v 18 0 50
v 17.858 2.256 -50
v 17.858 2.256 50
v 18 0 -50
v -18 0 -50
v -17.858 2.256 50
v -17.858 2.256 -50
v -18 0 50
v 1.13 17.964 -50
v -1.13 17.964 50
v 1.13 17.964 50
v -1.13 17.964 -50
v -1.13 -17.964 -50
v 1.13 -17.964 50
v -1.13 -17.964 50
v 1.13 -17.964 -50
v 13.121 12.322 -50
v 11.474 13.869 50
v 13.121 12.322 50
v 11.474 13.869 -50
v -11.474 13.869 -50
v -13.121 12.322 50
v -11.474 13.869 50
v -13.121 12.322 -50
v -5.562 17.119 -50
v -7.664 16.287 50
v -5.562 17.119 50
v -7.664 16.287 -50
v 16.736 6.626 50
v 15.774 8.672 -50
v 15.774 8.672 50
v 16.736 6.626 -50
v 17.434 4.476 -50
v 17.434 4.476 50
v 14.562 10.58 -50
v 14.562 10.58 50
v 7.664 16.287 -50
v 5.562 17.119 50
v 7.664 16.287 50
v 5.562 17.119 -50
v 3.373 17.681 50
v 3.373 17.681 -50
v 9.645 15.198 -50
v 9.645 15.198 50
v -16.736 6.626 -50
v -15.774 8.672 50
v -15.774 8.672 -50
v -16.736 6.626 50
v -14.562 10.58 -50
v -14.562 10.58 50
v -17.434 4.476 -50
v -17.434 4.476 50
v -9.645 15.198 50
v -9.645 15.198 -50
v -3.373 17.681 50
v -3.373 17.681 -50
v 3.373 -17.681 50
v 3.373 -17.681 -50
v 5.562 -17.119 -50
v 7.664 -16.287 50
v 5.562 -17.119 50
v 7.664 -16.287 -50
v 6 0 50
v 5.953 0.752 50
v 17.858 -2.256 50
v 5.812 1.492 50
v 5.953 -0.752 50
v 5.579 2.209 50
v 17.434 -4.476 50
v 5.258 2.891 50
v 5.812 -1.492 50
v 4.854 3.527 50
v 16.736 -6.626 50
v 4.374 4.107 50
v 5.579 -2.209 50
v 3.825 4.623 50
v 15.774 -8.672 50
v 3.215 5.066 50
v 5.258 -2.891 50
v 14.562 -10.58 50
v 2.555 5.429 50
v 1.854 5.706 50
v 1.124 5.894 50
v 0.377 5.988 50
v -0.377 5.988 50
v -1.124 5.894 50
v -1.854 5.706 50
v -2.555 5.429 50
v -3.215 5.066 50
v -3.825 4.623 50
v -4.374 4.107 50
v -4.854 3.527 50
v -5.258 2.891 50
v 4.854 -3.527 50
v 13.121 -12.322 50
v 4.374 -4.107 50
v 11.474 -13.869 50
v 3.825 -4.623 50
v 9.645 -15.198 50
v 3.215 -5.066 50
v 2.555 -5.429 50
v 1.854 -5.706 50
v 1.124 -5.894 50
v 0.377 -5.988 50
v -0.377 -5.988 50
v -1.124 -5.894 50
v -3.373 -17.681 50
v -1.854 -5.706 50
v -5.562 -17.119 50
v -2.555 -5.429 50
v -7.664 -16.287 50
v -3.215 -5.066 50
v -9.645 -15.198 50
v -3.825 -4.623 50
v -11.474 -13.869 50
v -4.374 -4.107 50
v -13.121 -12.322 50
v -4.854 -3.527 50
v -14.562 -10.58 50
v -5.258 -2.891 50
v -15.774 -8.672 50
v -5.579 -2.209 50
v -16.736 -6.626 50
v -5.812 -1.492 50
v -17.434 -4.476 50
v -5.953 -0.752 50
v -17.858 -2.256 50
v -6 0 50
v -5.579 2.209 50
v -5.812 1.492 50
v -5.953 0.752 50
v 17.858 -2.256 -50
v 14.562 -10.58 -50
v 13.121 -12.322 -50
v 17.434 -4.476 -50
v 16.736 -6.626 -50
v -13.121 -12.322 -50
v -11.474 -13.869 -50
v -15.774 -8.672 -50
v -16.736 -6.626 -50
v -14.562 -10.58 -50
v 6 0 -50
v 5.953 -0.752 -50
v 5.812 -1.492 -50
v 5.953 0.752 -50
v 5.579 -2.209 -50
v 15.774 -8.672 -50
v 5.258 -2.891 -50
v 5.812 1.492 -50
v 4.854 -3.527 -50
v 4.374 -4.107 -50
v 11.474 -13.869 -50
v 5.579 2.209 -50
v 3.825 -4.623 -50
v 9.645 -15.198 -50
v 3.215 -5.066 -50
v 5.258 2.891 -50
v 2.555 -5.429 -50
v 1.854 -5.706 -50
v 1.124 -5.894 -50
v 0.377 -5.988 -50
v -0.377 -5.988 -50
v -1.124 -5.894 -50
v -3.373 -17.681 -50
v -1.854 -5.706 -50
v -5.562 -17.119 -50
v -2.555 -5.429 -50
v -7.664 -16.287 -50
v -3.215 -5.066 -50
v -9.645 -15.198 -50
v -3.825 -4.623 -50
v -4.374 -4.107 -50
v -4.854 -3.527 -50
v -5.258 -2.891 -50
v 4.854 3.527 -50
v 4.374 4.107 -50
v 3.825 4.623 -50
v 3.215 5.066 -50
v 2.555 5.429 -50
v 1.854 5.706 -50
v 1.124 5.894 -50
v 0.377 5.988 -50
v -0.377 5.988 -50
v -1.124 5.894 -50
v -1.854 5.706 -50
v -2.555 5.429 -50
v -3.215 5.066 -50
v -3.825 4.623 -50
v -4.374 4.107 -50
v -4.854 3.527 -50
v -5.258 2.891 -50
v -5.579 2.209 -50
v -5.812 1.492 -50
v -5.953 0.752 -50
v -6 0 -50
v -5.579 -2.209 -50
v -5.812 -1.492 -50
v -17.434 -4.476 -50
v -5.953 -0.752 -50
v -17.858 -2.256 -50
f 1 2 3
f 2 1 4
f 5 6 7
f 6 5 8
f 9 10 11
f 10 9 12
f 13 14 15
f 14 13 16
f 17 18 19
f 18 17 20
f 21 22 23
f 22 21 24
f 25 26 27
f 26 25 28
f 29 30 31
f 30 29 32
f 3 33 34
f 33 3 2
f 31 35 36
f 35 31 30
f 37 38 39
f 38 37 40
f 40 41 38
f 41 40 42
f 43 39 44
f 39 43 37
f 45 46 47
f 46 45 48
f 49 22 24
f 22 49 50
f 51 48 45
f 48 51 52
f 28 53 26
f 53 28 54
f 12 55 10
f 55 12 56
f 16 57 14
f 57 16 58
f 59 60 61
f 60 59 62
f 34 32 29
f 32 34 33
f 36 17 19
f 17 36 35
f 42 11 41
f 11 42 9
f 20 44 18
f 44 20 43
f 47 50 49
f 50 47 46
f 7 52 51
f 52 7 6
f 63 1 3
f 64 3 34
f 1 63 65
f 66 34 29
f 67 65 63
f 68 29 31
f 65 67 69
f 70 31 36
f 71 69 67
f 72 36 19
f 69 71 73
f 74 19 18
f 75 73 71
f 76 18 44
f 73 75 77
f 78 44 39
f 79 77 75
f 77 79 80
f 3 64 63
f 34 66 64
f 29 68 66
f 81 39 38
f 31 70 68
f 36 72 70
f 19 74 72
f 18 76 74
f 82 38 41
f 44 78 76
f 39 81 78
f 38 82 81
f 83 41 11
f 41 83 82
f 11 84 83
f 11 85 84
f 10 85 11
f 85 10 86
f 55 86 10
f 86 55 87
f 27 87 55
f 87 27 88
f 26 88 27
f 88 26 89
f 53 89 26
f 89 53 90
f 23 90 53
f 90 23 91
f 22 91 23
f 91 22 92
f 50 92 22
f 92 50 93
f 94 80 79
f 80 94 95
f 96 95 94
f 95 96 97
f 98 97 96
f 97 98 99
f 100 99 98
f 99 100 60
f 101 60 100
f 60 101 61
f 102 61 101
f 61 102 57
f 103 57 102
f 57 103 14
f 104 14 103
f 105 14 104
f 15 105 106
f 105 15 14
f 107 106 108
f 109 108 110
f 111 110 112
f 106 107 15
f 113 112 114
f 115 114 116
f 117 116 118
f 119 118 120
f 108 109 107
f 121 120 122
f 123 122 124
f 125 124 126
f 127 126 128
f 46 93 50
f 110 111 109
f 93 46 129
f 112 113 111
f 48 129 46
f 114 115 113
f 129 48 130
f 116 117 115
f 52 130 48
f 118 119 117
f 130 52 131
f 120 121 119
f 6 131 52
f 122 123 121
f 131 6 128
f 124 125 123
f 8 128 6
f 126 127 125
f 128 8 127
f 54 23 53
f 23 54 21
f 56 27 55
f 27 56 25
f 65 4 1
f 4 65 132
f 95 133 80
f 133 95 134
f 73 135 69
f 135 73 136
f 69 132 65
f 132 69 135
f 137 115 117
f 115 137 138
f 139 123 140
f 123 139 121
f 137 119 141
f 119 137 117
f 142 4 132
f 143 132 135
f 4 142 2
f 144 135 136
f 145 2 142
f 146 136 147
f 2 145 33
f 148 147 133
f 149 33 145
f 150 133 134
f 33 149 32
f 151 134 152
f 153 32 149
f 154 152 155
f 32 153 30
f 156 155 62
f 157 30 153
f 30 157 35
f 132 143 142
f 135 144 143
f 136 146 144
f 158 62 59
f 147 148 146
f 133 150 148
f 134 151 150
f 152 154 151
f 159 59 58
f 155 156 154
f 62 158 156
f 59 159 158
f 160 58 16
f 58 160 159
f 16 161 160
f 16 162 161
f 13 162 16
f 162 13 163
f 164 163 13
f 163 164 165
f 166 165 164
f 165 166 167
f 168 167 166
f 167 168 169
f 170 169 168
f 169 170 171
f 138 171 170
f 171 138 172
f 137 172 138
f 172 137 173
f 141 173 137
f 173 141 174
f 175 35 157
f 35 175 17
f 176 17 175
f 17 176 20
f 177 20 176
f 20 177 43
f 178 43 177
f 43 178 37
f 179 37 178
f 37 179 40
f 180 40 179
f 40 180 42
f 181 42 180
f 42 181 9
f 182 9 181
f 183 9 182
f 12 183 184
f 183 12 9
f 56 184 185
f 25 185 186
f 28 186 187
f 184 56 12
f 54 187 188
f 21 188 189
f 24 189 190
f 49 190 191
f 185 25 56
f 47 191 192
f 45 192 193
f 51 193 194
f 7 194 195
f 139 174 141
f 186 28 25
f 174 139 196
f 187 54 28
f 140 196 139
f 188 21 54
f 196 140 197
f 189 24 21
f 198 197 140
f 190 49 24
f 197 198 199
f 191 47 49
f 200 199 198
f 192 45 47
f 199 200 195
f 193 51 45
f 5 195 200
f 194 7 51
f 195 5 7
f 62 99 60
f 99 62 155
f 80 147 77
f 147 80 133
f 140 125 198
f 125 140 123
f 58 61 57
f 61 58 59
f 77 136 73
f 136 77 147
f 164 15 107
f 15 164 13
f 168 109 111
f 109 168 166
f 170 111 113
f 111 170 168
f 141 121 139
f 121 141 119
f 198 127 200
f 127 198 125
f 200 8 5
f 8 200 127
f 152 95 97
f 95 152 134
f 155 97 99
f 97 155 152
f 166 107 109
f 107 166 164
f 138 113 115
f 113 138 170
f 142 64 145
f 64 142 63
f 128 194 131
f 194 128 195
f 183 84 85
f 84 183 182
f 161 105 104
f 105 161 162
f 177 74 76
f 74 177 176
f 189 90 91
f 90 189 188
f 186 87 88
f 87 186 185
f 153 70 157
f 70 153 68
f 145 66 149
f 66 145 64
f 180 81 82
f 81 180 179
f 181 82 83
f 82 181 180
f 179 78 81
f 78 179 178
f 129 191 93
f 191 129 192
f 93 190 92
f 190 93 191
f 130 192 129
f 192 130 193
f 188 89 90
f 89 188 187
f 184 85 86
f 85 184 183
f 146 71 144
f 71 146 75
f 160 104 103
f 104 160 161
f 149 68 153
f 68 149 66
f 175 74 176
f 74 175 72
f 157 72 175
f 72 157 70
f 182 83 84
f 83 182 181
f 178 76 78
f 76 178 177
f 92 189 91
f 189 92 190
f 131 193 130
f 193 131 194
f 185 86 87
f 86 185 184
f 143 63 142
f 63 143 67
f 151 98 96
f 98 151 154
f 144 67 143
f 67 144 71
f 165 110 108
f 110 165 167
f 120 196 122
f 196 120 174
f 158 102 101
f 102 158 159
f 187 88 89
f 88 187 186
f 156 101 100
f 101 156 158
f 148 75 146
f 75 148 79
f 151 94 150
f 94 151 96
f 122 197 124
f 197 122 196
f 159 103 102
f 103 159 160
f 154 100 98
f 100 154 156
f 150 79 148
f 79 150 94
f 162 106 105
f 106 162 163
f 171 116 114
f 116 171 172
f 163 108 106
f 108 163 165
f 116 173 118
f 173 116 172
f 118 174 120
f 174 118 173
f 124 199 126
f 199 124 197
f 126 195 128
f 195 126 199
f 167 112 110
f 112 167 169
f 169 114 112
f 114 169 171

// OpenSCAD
$fn = 50;


difference() {
	union() {
		translate(v = [0, 0, -50.0000000000]) {
			cylinder(h = 100, r = 18.0000000000);
		}
	}
	union() {
		translate(v = [0, 0, -100.0000000000]) {
			cylinder(h = 200, r = 6);
		}
	}
}
